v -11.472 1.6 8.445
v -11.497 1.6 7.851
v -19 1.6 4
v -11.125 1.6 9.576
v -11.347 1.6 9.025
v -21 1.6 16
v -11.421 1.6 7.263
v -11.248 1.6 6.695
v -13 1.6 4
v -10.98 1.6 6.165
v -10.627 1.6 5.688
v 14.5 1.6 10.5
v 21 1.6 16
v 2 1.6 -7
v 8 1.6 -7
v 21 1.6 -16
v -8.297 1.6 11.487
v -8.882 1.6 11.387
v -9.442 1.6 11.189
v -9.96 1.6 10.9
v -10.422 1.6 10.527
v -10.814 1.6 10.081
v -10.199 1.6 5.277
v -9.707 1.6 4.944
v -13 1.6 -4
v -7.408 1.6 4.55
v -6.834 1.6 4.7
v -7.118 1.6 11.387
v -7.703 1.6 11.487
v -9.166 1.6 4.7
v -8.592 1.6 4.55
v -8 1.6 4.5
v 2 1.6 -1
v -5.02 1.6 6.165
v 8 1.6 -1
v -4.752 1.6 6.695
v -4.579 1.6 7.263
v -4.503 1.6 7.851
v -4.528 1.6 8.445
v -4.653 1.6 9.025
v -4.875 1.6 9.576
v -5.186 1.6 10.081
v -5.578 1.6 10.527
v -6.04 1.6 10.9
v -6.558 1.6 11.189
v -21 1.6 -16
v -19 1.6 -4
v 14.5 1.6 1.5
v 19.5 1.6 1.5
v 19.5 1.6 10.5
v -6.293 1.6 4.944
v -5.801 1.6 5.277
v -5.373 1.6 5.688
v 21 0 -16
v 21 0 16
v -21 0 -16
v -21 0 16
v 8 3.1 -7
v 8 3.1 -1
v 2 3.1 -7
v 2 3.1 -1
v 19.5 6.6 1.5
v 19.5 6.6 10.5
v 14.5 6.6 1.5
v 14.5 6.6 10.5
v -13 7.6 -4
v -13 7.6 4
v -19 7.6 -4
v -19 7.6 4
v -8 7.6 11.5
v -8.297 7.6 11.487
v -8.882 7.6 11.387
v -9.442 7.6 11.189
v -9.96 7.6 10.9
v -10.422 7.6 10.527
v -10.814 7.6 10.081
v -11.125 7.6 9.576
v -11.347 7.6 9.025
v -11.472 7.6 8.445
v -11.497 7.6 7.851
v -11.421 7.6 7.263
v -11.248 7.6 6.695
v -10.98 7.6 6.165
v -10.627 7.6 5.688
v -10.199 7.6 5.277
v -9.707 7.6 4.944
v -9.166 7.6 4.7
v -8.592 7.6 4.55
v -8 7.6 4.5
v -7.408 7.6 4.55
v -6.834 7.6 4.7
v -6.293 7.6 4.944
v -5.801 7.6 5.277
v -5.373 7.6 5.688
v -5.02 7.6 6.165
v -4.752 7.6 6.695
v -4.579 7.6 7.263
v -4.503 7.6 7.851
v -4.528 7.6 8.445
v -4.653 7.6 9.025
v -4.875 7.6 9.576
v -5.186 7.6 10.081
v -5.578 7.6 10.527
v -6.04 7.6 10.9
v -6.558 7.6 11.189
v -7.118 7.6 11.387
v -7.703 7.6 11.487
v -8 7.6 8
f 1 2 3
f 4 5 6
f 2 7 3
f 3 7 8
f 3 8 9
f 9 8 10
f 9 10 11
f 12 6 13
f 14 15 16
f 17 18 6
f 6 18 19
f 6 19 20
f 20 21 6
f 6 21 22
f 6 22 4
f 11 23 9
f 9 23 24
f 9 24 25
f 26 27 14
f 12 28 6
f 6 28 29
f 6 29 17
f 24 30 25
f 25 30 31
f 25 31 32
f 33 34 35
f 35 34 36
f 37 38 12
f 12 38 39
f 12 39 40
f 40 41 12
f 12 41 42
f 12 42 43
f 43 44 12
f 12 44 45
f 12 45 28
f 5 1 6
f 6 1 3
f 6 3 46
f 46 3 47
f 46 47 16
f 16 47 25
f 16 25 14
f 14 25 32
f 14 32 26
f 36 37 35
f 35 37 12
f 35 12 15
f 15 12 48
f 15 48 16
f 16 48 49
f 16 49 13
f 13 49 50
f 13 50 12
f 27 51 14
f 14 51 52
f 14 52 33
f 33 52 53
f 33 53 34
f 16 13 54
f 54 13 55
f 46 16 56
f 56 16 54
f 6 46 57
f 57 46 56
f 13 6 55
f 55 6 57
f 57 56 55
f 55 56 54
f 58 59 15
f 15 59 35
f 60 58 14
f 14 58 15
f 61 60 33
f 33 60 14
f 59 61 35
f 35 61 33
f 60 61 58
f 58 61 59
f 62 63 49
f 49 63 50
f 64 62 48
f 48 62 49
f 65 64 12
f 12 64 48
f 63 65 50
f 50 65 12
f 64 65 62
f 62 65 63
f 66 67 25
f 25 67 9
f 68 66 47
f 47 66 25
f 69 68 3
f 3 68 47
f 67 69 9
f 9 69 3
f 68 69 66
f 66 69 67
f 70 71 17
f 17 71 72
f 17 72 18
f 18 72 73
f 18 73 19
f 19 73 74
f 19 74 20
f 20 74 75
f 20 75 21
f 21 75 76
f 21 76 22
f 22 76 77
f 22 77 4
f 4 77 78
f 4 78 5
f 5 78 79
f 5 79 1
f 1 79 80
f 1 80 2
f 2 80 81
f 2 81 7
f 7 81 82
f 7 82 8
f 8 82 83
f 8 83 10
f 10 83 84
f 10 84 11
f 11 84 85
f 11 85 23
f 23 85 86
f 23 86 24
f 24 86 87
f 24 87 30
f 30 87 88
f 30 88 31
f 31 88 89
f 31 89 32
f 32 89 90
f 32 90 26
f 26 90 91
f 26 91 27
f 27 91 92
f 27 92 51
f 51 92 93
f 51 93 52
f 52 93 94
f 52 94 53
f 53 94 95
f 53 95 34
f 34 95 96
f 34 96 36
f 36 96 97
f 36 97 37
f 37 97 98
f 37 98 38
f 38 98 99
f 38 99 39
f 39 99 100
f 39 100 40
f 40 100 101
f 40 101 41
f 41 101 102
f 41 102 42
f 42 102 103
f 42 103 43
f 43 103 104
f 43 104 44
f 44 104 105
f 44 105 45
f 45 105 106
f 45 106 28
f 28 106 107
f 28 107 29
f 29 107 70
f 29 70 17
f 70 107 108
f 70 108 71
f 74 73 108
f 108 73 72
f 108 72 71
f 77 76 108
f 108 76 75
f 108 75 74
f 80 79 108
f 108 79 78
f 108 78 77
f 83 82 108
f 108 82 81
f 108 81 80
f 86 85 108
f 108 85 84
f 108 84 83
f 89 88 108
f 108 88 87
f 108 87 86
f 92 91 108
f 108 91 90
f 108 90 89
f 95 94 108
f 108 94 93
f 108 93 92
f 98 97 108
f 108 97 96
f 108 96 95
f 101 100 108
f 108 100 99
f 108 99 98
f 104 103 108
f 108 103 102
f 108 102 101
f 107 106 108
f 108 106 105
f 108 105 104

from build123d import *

# Parameters (mm, degrees)
SKETCH1_W             = 42
SKETCH1_H             = 32
PCB_DEPTH             = 1.6
IC_START              = 1.6
SKETCH2_W             = 6
SKETCH2_H             = 6
IC_DEPTH              = 1.5
OUT_CONNECTOR_START   = 1.6
SKETCH3_W             = 5
SKETCH3_H             = 9
OUT_CONNECTOR_DEPTH   = 5
PROBE_CONNECTOR_START = 1.6
SKETCH4_W             = 6
SKETCH4_H             = 8
PROBE_CONNECTOR_DEPTH = 6
TRIM_POT_START        = 1.6
SKETCH5_R             = 3.5
TRIM_POT_DEPTH        = 6


with BuildPart() as part:
    # Sketch1 → PCB (new body)
    with BuildSketch(Plane(origin=(0, 0, 0), x_dir=(1, 0, 0), z_dir=(0, 1, 0))):
        Rectangle(SKETCH1_W, SKETCH1_H)
    extrude(amount=PCB_DEPTH)

    # Sketch2 → IC (add)
    with BuildSketch(Plane(origin=(0, 0, 0), x_dir=(1, 0, 0), z_dir=(0, 1, 0)).offset(IC_START)):
        with Locations((5, 4)):
            Rectangle(SKETCH2_W, SKETCH2_H)
    extrude(amount=IC_DEPTH)

    # Sketch3 → Out_Connector (add)
    with BuildSketch(Plane(origin=(0, 0, 0), x_dir=(1, 0, 0), z_dir=(0, 1, 0)).offset(OUT_CONNECTOR_START)):
        with Locations((17, -6)):
            Rectangle(SKETCH3_W, SKETCH3_H)
    extrude(amount=OUT_CONNECTOR_DEPTH)

    # Sketch4 → Probe_Connector (add)
    with BuildSketch(Plane(origin=(0, 0, 0), x_dir=(1, 0, 0), z_dir=(0, 1, 0)).offset(PROBE_CONNECTOR_START)):
        with Locations((-16, 0)):
            Rectangle(SKETCH4_W, SKETCH4_H)
    extrude(amount=PROBE_CONNECTOR_DEPTH)

    # Sketch5 → Trim_Pot (add)
    with BuildSketch(Plane(origin=(0, 0, 0), x_dir=(1, 0, 0), z_dir=(0, 1, 0)).offset(TRIM_POT_START)):
        with Locations(Location((-8, -8, 0), (0, 0, 90))):
            Circle(SKETCH5_R)
    extrude(amount=TRIM_POT_DEPTH)


solid = part.part
